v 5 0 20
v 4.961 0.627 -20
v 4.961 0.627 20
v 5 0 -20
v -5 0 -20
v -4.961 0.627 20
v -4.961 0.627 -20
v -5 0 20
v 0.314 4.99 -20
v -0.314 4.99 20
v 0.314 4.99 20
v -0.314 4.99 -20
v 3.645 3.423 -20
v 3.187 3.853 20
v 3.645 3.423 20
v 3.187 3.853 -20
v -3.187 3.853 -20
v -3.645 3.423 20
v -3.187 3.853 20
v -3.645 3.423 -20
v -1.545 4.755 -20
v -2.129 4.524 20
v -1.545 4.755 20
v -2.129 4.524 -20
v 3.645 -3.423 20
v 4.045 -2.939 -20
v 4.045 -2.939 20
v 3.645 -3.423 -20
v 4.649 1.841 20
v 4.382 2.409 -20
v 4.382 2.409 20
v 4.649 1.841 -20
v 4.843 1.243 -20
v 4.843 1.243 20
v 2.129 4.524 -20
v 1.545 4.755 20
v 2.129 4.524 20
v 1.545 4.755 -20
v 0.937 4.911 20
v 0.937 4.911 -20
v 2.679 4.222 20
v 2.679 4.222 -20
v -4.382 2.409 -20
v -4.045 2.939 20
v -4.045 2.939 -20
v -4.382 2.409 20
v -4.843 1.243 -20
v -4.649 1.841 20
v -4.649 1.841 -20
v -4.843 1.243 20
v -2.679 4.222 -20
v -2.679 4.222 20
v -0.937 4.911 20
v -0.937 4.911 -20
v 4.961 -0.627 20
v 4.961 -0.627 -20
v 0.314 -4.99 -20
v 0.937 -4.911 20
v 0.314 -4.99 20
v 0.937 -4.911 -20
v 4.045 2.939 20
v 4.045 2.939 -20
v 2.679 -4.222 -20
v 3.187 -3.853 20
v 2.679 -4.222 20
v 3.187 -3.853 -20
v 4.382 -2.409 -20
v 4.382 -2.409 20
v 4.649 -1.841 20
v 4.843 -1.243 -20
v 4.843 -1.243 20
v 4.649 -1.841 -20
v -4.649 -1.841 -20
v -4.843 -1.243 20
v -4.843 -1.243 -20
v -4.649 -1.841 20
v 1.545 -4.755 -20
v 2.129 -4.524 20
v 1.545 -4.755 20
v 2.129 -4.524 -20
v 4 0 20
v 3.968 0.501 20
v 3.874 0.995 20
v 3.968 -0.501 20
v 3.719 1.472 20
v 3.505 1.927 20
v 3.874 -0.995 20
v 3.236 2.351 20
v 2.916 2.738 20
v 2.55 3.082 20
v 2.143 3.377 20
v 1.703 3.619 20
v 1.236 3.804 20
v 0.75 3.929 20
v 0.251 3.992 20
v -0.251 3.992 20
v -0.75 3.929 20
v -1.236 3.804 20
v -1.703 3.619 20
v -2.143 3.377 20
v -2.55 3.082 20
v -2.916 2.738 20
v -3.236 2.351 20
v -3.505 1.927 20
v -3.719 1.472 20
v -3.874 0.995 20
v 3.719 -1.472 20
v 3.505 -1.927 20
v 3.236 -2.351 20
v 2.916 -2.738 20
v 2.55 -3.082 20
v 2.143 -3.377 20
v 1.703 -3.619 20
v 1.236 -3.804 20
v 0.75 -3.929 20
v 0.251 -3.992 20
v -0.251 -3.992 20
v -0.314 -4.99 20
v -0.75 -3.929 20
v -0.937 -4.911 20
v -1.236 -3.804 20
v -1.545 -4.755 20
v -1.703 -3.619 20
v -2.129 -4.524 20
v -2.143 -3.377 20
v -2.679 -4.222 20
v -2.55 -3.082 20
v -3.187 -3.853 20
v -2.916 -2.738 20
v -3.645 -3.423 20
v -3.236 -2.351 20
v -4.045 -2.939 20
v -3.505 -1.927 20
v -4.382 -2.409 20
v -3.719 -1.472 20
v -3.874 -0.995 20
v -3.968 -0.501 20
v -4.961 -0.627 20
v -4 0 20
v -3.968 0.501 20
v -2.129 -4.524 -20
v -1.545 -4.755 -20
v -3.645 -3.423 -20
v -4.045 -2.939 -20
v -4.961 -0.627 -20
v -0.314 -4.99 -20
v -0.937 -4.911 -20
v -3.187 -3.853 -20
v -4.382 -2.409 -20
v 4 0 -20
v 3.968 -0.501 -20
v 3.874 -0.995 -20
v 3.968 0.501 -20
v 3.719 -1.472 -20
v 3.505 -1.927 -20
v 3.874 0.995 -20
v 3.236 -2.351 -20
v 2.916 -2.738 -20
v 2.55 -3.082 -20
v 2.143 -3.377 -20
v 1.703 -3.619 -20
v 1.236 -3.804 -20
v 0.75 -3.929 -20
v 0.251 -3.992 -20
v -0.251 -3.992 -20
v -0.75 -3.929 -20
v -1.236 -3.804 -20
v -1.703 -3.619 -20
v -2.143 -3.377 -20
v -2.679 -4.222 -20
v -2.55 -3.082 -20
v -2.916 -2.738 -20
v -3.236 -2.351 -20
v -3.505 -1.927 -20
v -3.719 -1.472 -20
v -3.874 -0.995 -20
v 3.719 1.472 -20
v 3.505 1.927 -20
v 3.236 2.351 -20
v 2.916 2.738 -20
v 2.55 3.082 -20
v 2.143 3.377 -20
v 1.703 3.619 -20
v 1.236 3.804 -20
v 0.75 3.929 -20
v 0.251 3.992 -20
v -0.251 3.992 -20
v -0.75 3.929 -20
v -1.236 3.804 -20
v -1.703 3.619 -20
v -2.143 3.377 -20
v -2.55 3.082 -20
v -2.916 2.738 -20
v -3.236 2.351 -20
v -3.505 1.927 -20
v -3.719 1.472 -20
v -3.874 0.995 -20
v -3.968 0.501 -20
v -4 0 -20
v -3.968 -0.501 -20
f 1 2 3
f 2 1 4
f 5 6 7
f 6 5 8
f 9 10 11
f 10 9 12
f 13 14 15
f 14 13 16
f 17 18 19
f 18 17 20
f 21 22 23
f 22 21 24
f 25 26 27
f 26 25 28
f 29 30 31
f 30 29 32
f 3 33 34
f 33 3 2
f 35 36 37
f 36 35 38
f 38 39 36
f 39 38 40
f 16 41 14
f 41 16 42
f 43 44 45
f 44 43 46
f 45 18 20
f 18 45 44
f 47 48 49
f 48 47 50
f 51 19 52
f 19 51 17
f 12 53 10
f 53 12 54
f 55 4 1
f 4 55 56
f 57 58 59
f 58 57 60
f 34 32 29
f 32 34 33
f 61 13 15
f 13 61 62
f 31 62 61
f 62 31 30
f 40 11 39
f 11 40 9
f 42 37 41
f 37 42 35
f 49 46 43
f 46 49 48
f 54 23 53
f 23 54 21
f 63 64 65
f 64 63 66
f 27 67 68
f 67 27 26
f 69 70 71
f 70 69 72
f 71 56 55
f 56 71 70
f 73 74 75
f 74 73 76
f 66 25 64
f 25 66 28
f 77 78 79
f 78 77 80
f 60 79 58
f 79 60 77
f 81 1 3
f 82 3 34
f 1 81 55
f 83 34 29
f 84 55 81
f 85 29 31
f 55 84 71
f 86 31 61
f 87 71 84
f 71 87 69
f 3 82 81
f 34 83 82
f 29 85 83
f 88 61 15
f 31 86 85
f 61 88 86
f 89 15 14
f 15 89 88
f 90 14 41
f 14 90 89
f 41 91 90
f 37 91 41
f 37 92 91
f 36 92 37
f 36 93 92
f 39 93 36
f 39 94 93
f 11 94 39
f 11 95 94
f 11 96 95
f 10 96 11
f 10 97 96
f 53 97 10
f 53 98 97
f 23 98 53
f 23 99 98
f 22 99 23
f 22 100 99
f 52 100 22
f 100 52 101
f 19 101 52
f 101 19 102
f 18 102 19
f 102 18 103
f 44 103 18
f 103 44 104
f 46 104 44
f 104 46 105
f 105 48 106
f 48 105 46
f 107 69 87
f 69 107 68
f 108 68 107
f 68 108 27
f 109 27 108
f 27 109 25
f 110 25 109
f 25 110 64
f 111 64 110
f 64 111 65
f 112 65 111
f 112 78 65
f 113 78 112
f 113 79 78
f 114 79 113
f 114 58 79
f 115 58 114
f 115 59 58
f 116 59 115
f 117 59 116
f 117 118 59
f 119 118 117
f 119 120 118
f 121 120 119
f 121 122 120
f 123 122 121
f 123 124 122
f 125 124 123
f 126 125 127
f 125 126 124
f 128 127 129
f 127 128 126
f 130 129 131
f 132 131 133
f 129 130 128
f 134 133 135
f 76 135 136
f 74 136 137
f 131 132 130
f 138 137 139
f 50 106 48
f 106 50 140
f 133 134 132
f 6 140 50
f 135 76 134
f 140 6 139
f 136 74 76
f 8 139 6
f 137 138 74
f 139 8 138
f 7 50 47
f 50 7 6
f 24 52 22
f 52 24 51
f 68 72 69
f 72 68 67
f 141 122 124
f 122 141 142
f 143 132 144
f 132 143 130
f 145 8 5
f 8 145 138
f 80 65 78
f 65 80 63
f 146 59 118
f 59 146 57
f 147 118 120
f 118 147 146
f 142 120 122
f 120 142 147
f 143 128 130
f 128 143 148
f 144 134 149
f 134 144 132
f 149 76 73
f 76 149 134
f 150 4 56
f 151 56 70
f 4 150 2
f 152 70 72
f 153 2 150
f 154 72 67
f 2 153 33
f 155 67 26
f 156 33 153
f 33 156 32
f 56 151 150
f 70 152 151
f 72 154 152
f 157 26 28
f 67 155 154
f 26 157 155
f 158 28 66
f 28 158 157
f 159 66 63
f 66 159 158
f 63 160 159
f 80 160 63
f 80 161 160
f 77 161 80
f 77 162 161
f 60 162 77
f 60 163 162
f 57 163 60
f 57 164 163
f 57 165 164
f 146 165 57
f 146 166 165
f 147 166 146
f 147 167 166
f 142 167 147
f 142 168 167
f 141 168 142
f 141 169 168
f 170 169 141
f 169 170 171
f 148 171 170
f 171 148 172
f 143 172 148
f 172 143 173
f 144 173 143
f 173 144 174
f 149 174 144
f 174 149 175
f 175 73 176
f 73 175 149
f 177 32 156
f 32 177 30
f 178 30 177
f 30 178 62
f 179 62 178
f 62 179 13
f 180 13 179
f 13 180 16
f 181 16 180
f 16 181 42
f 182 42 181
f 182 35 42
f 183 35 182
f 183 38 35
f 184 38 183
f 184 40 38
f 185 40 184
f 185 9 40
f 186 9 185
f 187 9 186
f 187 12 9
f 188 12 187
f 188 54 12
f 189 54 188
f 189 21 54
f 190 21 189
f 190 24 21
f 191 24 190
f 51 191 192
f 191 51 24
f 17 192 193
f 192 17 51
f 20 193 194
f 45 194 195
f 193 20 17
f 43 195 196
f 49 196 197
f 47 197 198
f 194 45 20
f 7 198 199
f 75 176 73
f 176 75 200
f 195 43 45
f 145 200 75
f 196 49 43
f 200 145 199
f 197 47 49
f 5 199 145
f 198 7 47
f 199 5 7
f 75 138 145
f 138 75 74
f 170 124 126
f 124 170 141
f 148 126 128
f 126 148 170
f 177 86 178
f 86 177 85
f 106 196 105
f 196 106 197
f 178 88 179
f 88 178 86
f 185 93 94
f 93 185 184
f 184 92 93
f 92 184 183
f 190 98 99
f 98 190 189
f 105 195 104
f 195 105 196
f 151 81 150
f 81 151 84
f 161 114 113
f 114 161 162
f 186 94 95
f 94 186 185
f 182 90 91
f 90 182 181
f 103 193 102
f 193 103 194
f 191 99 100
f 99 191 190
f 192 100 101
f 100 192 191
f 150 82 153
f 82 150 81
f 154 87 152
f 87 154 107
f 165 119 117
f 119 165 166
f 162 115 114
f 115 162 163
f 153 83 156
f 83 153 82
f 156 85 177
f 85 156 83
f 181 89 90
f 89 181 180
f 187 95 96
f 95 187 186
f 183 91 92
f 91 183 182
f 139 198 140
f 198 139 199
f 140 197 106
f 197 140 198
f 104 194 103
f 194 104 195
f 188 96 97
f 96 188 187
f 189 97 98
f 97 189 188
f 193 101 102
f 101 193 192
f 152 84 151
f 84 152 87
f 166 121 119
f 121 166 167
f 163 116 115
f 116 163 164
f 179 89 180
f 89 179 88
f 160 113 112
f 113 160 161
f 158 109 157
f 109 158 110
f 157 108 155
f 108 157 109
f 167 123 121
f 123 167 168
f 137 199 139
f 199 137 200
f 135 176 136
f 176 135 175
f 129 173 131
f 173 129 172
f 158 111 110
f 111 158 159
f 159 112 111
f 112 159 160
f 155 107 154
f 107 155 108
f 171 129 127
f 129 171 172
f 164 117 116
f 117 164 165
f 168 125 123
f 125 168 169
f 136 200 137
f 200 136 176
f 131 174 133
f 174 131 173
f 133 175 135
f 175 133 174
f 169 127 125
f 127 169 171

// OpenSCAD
$fn = 50;


difference() {
	union() {
		translate(v = [0, 0, -20.0000000000]) {
			cylinder(h = 40, r = 5.0000000000);
		}
	}
	union() {
		translate(v = [0, 0, -100.0000000000]) {
			cylinder(h = 200, r = 4.0000000000);
		}
	}
}
